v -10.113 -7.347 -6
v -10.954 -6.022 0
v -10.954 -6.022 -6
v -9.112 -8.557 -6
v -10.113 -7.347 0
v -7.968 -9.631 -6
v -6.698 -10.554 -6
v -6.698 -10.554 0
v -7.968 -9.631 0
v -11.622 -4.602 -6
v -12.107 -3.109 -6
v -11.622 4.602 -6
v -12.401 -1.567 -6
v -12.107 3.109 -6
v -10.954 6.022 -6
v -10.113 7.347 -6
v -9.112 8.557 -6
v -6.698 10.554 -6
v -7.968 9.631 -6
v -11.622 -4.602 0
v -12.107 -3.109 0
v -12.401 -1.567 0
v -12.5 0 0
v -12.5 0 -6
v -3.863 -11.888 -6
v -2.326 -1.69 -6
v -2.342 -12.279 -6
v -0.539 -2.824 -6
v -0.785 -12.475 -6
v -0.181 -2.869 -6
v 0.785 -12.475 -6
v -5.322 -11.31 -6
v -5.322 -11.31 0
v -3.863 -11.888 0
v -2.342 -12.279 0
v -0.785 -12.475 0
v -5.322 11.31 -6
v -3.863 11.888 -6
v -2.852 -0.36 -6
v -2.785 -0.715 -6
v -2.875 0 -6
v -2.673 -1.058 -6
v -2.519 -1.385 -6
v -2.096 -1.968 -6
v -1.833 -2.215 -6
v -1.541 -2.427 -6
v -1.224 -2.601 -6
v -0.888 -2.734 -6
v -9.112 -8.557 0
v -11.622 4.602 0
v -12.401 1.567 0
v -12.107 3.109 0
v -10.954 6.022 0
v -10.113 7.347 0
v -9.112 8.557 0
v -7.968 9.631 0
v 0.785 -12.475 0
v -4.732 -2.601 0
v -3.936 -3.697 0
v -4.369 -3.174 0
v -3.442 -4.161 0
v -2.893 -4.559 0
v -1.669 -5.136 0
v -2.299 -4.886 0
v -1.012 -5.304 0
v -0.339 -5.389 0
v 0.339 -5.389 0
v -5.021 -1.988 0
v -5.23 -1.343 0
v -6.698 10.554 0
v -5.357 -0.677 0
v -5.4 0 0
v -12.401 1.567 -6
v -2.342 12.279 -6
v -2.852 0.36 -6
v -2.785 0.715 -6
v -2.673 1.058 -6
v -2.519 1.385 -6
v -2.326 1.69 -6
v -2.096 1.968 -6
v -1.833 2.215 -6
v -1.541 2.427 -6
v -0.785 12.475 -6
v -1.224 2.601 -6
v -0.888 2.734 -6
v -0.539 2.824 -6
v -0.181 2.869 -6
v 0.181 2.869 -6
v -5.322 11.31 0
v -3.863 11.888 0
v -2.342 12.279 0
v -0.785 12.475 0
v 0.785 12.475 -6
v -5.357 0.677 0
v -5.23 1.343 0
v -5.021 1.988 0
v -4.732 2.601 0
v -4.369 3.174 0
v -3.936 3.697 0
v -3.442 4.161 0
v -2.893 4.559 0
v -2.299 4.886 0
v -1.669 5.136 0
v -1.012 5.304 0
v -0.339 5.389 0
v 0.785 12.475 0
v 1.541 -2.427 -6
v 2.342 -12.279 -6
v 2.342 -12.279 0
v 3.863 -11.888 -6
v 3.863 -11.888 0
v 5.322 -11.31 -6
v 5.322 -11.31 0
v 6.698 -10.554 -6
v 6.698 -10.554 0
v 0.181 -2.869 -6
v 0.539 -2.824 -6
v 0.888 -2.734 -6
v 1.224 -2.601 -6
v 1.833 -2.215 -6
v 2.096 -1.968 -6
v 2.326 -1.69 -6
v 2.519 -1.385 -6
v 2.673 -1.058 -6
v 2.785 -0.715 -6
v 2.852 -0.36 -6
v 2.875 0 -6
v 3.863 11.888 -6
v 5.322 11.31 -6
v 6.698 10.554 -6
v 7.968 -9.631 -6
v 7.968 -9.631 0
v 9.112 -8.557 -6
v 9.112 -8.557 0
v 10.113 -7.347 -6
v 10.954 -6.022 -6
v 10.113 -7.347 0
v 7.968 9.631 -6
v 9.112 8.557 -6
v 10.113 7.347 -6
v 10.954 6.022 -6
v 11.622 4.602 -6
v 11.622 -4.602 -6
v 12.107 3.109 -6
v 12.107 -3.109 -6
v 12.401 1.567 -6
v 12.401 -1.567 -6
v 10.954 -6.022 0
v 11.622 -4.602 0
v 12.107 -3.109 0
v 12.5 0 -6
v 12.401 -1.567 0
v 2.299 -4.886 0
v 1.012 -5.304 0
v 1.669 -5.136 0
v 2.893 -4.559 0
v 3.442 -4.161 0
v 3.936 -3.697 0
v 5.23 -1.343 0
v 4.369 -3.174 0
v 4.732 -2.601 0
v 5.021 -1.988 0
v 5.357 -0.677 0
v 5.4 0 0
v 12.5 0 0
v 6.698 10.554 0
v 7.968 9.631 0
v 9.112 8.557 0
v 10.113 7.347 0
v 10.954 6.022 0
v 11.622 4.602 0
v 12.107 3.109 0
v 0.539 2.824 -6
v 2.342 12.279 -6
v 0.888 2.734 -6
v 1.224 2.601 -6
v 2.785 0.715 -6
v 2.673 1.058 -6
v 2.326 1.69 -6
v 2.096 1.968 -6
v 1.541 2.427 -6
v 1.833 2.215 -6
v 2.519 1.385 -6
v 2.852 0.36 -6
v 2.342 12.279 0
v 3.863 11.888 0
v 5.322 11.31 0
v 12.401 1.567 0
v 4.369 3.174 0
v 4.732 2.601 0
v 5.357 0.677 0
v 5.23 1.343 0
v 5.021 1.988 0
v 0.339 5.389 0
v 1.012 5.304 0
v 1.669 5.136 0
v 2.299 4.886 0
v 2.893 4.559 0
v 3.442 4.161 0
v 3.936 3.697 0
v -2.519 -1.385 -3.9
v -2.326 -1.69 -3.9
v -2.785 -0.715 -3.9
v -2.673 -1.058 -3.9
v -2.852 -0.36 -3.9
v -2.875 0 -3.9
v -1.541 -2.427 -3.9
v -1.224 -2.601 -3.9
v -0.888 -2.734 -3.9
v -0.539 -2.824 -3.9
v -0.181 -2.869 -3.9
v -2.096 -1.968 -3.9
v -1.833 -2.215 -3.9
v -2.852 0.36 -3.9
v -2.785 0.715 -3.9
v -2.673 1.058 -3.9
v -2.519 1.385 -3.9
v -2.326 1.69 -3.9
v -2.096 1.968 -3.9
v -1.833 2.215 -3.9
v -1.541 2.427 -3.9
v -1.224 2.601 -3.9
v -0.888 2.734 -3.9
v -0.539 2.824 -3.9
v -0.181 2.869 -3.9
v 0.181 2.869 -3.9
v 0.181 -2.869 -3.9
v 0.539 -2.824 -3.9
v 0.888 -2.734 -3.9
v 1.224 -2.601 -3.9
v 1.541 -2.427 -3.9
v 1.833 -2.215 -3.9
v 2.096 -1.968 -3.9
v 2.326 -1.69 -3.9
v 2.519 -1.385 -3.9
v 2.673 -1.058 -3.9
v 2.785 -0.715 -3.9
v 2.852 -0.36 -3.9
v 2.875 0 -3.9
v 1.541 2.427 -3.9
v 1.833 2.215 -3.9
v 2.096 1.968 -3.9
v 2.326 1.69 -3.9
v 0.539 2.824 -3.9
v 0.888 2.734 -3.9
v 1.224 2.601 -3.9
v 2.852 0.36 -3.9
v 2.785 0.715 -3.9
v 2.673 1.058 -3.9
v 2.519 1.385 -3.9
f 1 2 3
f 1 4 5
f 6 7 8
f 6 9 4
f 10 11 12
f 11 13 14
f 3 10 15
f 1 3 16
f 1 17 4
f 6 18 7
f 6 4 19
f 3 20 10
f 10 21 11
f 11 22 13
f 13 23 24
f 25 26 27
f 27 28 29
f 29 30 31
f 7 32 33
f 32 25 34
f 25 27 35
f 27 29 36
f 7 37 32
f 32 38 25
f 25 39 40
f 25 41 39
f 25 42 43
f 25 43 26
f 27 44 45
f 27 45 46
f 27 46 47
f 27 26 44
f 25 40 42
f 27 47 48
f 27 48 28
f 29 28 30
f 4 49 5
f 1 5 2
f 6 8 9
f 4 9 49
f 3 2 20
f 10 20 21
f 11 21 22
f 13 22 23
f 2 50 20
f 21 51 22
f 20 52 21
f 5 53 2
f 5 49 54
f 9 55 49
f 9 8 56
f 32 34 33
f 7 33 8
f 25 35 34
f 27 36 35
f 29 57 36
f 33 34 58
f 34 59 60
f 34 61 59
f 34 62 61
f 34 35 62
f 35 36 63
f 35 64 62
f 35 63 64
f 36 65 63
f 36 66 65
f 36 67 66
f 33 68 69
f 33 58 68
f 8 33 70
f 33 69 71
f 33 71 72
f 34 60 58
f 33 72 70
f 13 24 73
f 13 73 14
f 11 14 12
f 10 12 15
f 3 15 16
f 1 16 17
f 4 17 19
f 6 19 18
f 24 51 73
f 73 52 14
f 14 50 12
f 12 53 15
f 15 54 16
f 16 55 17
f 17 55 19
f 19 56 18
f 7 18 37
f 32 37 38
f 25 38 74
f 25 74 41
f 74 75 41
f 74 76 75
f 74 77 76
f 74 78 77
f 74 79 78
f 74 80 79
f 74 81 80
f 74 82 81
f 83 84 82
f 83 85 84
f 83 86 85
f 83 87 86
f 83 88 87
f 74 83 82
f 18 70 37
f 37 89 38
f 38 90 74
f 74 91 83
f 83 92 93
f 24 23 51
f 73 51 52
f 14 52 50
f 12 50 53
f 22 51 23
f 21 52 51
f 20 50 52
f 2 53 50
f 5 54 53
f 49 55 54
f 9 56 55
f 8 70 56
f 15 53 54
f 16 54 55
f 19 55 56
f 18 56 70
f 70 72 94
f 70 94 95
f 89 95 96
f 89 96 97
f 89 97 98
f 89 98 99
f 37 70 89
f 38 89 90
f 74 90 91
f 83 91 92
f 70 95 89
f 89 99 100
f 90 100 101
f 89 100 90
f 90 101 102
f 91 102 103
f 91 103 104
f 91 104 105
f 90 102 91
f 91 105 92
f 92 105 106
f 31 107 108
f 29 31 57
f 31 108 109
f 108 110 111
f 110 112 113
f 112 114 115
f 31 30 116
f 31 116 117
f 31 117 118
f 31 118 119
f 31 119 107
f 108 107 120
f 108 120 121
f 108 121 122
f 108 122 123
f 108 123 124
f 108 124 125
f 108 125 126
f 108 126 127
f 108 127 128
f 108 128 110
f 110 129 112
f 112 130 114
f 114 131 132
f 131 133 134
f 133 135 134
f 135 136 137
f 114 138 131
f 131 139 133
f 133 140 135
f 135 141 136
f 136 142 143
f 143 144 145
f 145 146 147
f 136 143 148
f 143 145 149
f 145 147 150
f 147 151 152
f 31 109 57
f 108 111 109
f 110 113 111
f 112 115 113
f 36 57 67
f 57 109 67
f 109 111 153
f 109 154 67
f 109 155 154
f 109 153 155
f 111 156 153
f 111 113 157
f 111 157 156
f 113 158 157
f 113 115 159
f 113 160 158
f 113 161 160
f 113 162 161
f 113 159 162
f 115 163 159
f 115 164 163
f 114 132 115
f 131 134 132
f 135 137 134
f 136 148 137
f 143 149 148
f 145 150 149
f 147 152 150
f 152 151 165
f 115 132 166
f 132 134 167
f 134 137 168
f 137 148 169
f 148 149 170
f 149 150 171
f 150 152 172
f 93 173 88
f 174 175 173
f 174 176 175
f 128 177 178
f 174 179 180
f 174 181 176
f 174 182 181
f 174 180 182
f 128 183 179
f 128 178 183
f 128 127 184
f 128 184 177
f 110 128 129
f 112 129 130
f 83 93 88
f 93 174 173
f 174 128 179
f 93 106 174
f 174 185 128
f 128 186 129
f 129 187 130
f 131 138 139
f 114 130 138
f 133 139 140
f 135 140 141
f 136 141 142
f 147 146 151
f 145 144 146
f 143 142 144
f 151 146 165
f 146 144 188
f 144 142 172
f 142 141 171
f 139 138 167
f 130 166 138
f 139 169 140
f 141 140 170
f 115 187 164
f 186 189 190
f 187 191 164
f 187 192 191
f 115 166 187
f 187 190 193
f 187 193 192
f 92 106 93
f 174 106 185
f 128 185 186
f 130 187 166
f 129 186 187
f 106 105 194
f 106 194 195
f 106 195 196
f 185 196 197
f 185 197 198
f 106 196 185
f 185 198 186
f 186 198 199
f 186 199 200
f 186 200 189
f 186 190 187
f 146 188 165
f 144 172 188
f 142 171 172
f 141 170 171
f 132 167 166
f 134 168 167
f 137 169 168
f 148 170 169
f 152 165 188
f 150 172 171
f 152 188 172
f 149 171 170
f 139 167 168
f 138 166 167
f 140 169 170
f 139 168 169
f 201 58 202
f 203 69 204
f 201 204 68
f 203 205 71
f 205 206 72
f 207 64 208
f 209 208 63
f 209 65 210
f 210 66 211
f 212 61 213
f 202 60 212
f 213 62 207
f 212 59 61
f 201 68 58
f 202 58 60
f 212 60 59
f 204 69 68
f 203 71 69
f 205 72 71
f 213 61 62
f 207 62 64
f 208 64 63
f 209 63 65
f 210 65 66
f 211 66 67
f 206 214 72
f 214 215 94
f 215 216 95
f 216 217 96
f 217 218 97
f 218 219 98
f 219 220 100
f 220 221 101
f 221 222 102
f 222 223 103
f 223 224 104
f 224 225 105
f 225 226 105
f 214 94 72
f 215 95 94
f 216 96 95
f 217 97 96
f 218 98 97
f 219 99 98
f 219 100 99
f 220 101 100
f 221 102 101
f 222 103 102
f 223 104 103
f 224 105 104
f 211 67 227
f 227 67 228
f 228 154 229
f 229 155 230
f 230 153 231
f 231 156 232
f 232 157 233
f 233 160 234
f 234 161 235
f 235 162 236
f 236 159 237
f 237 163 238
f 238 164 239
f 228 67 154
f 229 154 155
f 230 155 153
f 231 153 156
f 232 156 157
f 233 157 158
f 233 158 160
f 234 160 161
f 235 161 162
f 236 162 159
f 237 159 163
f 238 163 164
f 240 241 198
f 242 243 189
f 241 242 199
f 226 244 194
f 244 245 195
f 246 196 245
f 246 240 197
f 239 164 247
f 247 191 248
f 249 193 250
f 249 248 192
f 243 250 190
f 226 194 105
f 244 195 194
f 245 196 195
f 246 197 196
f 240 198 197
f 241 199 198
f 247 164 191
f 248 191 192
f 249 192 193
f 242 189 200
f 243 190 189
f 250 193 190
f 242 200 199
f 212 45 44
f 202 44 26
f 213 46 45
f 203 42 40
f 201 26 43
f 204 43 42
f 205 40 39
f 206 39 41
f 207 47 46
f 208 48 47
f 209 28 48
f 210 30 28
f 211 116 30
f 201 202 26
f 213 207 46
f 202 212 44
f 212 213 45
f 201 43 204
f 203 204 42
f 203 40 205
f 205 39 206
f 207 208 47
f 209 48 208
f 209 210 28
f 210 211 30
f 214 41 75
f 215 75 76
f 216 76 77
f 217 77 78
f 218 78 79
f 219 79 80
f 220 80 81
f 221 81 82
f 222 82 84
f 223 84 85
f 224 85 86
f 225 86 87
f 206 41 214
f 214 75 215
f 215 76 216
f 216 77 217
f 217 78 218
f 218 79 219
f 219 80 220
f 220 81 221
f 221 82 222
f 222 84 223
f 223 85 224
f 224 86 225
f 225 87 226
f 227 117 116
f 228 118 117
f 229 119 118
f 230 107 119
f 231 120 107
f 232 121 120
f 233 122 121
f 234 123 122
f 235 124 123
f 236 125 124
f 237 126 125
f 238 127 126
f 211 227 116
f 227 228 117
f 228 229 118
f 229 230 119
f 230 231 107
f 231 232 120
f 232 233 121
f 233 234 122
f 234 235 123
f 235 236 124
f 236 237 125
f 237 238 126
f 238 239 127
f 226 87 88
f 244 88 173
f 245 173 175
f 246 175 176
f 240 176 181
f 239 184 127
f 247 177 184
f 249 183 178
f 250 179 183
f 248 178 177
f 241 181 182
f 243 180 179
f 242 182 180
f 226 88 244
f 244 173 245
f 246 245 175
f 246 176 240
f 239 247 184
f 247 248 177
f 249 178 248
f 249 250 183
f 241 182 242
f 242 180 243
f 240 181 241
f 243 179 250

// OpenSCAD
$fn = 50;

difference() {
	union() {
		translate(v = [0, 0, -6.0]) {
			cylinder(h = 6, r = 12.5);
		}
		#translate(v = [0, 0, -9.0]) {
			cylinder(h = 9, r = 2.875);
		}
	}
	union() {
		translate(v = [0, 0, 0]) {
			rotate(a = [0, 0, 0]) {
				difference() {
					union() {
						translate(v = [0, 0, -9.0]) {
							cylinder(h = 9, r = 2.6);
						}
						translate(v = [0, 0, -3.9]) {
							cylinder(h = 3.9, r1 = 2.875, r2 = 5.4);
						}
						translate(v = [0, 0, -9.0]) {
							cylinder(h = 9, r = 2.875);
						}
						translate(v = [0, 0, -9.0]) {
							cylinder(h = 9, r = 2.6);
						}
					}
					union();
				}
			}
		}
	}
}
